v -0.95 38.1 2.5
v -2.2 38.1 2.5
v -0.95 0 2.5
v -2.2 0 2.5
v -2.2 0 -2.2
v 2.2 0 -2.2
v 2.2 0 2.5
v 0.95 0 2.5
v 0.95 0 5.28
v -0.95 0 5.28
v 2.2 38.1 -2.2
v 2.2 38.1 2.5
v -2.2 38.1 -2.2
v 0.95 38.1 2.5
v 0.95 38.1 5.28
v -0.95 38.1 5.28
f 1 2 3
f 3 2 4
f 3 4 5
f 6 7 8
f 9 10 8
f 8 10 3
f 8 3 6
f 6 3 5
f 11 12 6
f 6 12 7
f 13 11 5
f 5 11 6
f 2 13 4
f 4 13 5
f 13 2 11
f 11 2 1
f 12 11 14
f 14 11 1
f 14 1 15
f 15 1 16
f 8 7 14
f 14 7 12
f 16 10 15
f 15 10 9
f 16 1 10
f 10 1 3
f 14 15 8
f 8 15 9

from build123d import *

# Parameters (mm, degrees)
SKETCH_1_W            = 5
SKETCH_1_H            = 5
EXTRUDE_1_DEPTH       = 38.1
SKETCH_3_W            = 2
SKETCH_3_H            = 2.78
EXTRUDE_2_DEPTH       = 38.1
SKETCH_6_W            = 5
SKETCH_6_H            = 5
SKETCH_6_W_2          = 4.4
SKETCH_6_H_2          = 4.4
CUT_EXTRUDE_1_DEPTH   = 39.545277272
EXTRUDE_3_DEPTH       = 38.1
SKETCH_9_W            = 0.05
SKETCH_9_H            = 2.78
CUT_EXTRUDE_1_2_DEPTH = 39.526982752
SKETCH_11_W           = 0.05
SKETCH_11_H           = 2.78
CUT_EXTRUDE_2_DEPTH   = 39.526982752


with BuildPart() as part:
    # 草圖1 → 填料-伸長1 (new body)
    with BuildSketch(Plane(origin=(0, 0, 0), x_dir=(1, 0, 0), z_dir=(0, 1, 0))):
        Rectangle(SKETCH_1_W, SKETCH_1_H)
    extrude(amount=EXTRUDE_1_DEPTH)

    # 草圖3 → 填料-伸長2 (add)
    with BuildSketch(Plane(origin=(0, 38.1, 0), x_dir=(1, 0, 0), z_dir=(0, 1, 0))):
        with Locations((0, -3.89)):
            Rectangle(SKETCH_3_W, SKETCH_3_H)
    extrude(amount=-EXTRUDE_2_DEPTH)

    # 草圖6 → Cut-Extrude 1 (cut, through all)
    with BuildSketch(Plane.XZ):
        Rectangle(SKETCH_6_W, SKETCH_6_H)
        Rectangle(SKETCH_6_W_2, SKETCH_6_H_2, mode=Mode.SUBTRACT)
    extrude(amount=-CUT_EXTRUDE_1_DEPTH, mode=Mode.SUBTRACT)


with BuildPart() as cut_extrude_1_piece_1:
    # of the separate pieces the step leaves, piece 1, a body of its own (cut_extrude_1_pieces)
    add(part.part.solids().sort_by_distance((2.2, 0, 2.2))[0])



with BuildPart() as cut_extrude_1_piece_2:
    # of the separate pieces the step leaves, piece 2, a body of its own (cut_extrude_1_pieces)
    add(part.part.solids().sort_by_distance((-1, 0, 5.28))[0])


with BuildPart() as cut_extrude_1_piece_1_1:
    add(cut_extrude_1_piece_1.part)

    add(cut_extrude_1_piece_2.part)  # 填料-伸長3 merges Cut-Extrude 1 piece 2
    # 草圖8 → 填料-伸長3 (add)
    with BuildSketch(Plane.XZ):
        Polygon((1, 2.5), (2.2, 2.5), (2.2, 2.2), (-2.2, 2.2), (-2.2, 2.5), align=None)
    extrude(amount=-EXTRUDE_3_DEPTH)

    # 草圖9 → Cut-Extrude 1 2 (cut, through all)
    with BuildSketch(Plane.XZ):
        with Locations((-0.975, 3.89)):
            Rectangle(SKETCH_9_W, SKETCH_9_H)
    extrude(amount=-CUT_EXTRUDE_1_2_DEPTH, mode=Mode.SUBTRACT)

    # 草圖11 → 除料-伸長2 (cut, through all)
    with BuildSketch(Plane.XZ):
        with Locations((0.975, 3.89)):
            Rectangle(SKETCH_11_W, SKETCH_11_H)
    extrude(amount=-CUT_EXTRUDE_2_DEPTH, mode=Mode.SUBTRACT)


solid = cut_extrude_1_piece_1_1.part
